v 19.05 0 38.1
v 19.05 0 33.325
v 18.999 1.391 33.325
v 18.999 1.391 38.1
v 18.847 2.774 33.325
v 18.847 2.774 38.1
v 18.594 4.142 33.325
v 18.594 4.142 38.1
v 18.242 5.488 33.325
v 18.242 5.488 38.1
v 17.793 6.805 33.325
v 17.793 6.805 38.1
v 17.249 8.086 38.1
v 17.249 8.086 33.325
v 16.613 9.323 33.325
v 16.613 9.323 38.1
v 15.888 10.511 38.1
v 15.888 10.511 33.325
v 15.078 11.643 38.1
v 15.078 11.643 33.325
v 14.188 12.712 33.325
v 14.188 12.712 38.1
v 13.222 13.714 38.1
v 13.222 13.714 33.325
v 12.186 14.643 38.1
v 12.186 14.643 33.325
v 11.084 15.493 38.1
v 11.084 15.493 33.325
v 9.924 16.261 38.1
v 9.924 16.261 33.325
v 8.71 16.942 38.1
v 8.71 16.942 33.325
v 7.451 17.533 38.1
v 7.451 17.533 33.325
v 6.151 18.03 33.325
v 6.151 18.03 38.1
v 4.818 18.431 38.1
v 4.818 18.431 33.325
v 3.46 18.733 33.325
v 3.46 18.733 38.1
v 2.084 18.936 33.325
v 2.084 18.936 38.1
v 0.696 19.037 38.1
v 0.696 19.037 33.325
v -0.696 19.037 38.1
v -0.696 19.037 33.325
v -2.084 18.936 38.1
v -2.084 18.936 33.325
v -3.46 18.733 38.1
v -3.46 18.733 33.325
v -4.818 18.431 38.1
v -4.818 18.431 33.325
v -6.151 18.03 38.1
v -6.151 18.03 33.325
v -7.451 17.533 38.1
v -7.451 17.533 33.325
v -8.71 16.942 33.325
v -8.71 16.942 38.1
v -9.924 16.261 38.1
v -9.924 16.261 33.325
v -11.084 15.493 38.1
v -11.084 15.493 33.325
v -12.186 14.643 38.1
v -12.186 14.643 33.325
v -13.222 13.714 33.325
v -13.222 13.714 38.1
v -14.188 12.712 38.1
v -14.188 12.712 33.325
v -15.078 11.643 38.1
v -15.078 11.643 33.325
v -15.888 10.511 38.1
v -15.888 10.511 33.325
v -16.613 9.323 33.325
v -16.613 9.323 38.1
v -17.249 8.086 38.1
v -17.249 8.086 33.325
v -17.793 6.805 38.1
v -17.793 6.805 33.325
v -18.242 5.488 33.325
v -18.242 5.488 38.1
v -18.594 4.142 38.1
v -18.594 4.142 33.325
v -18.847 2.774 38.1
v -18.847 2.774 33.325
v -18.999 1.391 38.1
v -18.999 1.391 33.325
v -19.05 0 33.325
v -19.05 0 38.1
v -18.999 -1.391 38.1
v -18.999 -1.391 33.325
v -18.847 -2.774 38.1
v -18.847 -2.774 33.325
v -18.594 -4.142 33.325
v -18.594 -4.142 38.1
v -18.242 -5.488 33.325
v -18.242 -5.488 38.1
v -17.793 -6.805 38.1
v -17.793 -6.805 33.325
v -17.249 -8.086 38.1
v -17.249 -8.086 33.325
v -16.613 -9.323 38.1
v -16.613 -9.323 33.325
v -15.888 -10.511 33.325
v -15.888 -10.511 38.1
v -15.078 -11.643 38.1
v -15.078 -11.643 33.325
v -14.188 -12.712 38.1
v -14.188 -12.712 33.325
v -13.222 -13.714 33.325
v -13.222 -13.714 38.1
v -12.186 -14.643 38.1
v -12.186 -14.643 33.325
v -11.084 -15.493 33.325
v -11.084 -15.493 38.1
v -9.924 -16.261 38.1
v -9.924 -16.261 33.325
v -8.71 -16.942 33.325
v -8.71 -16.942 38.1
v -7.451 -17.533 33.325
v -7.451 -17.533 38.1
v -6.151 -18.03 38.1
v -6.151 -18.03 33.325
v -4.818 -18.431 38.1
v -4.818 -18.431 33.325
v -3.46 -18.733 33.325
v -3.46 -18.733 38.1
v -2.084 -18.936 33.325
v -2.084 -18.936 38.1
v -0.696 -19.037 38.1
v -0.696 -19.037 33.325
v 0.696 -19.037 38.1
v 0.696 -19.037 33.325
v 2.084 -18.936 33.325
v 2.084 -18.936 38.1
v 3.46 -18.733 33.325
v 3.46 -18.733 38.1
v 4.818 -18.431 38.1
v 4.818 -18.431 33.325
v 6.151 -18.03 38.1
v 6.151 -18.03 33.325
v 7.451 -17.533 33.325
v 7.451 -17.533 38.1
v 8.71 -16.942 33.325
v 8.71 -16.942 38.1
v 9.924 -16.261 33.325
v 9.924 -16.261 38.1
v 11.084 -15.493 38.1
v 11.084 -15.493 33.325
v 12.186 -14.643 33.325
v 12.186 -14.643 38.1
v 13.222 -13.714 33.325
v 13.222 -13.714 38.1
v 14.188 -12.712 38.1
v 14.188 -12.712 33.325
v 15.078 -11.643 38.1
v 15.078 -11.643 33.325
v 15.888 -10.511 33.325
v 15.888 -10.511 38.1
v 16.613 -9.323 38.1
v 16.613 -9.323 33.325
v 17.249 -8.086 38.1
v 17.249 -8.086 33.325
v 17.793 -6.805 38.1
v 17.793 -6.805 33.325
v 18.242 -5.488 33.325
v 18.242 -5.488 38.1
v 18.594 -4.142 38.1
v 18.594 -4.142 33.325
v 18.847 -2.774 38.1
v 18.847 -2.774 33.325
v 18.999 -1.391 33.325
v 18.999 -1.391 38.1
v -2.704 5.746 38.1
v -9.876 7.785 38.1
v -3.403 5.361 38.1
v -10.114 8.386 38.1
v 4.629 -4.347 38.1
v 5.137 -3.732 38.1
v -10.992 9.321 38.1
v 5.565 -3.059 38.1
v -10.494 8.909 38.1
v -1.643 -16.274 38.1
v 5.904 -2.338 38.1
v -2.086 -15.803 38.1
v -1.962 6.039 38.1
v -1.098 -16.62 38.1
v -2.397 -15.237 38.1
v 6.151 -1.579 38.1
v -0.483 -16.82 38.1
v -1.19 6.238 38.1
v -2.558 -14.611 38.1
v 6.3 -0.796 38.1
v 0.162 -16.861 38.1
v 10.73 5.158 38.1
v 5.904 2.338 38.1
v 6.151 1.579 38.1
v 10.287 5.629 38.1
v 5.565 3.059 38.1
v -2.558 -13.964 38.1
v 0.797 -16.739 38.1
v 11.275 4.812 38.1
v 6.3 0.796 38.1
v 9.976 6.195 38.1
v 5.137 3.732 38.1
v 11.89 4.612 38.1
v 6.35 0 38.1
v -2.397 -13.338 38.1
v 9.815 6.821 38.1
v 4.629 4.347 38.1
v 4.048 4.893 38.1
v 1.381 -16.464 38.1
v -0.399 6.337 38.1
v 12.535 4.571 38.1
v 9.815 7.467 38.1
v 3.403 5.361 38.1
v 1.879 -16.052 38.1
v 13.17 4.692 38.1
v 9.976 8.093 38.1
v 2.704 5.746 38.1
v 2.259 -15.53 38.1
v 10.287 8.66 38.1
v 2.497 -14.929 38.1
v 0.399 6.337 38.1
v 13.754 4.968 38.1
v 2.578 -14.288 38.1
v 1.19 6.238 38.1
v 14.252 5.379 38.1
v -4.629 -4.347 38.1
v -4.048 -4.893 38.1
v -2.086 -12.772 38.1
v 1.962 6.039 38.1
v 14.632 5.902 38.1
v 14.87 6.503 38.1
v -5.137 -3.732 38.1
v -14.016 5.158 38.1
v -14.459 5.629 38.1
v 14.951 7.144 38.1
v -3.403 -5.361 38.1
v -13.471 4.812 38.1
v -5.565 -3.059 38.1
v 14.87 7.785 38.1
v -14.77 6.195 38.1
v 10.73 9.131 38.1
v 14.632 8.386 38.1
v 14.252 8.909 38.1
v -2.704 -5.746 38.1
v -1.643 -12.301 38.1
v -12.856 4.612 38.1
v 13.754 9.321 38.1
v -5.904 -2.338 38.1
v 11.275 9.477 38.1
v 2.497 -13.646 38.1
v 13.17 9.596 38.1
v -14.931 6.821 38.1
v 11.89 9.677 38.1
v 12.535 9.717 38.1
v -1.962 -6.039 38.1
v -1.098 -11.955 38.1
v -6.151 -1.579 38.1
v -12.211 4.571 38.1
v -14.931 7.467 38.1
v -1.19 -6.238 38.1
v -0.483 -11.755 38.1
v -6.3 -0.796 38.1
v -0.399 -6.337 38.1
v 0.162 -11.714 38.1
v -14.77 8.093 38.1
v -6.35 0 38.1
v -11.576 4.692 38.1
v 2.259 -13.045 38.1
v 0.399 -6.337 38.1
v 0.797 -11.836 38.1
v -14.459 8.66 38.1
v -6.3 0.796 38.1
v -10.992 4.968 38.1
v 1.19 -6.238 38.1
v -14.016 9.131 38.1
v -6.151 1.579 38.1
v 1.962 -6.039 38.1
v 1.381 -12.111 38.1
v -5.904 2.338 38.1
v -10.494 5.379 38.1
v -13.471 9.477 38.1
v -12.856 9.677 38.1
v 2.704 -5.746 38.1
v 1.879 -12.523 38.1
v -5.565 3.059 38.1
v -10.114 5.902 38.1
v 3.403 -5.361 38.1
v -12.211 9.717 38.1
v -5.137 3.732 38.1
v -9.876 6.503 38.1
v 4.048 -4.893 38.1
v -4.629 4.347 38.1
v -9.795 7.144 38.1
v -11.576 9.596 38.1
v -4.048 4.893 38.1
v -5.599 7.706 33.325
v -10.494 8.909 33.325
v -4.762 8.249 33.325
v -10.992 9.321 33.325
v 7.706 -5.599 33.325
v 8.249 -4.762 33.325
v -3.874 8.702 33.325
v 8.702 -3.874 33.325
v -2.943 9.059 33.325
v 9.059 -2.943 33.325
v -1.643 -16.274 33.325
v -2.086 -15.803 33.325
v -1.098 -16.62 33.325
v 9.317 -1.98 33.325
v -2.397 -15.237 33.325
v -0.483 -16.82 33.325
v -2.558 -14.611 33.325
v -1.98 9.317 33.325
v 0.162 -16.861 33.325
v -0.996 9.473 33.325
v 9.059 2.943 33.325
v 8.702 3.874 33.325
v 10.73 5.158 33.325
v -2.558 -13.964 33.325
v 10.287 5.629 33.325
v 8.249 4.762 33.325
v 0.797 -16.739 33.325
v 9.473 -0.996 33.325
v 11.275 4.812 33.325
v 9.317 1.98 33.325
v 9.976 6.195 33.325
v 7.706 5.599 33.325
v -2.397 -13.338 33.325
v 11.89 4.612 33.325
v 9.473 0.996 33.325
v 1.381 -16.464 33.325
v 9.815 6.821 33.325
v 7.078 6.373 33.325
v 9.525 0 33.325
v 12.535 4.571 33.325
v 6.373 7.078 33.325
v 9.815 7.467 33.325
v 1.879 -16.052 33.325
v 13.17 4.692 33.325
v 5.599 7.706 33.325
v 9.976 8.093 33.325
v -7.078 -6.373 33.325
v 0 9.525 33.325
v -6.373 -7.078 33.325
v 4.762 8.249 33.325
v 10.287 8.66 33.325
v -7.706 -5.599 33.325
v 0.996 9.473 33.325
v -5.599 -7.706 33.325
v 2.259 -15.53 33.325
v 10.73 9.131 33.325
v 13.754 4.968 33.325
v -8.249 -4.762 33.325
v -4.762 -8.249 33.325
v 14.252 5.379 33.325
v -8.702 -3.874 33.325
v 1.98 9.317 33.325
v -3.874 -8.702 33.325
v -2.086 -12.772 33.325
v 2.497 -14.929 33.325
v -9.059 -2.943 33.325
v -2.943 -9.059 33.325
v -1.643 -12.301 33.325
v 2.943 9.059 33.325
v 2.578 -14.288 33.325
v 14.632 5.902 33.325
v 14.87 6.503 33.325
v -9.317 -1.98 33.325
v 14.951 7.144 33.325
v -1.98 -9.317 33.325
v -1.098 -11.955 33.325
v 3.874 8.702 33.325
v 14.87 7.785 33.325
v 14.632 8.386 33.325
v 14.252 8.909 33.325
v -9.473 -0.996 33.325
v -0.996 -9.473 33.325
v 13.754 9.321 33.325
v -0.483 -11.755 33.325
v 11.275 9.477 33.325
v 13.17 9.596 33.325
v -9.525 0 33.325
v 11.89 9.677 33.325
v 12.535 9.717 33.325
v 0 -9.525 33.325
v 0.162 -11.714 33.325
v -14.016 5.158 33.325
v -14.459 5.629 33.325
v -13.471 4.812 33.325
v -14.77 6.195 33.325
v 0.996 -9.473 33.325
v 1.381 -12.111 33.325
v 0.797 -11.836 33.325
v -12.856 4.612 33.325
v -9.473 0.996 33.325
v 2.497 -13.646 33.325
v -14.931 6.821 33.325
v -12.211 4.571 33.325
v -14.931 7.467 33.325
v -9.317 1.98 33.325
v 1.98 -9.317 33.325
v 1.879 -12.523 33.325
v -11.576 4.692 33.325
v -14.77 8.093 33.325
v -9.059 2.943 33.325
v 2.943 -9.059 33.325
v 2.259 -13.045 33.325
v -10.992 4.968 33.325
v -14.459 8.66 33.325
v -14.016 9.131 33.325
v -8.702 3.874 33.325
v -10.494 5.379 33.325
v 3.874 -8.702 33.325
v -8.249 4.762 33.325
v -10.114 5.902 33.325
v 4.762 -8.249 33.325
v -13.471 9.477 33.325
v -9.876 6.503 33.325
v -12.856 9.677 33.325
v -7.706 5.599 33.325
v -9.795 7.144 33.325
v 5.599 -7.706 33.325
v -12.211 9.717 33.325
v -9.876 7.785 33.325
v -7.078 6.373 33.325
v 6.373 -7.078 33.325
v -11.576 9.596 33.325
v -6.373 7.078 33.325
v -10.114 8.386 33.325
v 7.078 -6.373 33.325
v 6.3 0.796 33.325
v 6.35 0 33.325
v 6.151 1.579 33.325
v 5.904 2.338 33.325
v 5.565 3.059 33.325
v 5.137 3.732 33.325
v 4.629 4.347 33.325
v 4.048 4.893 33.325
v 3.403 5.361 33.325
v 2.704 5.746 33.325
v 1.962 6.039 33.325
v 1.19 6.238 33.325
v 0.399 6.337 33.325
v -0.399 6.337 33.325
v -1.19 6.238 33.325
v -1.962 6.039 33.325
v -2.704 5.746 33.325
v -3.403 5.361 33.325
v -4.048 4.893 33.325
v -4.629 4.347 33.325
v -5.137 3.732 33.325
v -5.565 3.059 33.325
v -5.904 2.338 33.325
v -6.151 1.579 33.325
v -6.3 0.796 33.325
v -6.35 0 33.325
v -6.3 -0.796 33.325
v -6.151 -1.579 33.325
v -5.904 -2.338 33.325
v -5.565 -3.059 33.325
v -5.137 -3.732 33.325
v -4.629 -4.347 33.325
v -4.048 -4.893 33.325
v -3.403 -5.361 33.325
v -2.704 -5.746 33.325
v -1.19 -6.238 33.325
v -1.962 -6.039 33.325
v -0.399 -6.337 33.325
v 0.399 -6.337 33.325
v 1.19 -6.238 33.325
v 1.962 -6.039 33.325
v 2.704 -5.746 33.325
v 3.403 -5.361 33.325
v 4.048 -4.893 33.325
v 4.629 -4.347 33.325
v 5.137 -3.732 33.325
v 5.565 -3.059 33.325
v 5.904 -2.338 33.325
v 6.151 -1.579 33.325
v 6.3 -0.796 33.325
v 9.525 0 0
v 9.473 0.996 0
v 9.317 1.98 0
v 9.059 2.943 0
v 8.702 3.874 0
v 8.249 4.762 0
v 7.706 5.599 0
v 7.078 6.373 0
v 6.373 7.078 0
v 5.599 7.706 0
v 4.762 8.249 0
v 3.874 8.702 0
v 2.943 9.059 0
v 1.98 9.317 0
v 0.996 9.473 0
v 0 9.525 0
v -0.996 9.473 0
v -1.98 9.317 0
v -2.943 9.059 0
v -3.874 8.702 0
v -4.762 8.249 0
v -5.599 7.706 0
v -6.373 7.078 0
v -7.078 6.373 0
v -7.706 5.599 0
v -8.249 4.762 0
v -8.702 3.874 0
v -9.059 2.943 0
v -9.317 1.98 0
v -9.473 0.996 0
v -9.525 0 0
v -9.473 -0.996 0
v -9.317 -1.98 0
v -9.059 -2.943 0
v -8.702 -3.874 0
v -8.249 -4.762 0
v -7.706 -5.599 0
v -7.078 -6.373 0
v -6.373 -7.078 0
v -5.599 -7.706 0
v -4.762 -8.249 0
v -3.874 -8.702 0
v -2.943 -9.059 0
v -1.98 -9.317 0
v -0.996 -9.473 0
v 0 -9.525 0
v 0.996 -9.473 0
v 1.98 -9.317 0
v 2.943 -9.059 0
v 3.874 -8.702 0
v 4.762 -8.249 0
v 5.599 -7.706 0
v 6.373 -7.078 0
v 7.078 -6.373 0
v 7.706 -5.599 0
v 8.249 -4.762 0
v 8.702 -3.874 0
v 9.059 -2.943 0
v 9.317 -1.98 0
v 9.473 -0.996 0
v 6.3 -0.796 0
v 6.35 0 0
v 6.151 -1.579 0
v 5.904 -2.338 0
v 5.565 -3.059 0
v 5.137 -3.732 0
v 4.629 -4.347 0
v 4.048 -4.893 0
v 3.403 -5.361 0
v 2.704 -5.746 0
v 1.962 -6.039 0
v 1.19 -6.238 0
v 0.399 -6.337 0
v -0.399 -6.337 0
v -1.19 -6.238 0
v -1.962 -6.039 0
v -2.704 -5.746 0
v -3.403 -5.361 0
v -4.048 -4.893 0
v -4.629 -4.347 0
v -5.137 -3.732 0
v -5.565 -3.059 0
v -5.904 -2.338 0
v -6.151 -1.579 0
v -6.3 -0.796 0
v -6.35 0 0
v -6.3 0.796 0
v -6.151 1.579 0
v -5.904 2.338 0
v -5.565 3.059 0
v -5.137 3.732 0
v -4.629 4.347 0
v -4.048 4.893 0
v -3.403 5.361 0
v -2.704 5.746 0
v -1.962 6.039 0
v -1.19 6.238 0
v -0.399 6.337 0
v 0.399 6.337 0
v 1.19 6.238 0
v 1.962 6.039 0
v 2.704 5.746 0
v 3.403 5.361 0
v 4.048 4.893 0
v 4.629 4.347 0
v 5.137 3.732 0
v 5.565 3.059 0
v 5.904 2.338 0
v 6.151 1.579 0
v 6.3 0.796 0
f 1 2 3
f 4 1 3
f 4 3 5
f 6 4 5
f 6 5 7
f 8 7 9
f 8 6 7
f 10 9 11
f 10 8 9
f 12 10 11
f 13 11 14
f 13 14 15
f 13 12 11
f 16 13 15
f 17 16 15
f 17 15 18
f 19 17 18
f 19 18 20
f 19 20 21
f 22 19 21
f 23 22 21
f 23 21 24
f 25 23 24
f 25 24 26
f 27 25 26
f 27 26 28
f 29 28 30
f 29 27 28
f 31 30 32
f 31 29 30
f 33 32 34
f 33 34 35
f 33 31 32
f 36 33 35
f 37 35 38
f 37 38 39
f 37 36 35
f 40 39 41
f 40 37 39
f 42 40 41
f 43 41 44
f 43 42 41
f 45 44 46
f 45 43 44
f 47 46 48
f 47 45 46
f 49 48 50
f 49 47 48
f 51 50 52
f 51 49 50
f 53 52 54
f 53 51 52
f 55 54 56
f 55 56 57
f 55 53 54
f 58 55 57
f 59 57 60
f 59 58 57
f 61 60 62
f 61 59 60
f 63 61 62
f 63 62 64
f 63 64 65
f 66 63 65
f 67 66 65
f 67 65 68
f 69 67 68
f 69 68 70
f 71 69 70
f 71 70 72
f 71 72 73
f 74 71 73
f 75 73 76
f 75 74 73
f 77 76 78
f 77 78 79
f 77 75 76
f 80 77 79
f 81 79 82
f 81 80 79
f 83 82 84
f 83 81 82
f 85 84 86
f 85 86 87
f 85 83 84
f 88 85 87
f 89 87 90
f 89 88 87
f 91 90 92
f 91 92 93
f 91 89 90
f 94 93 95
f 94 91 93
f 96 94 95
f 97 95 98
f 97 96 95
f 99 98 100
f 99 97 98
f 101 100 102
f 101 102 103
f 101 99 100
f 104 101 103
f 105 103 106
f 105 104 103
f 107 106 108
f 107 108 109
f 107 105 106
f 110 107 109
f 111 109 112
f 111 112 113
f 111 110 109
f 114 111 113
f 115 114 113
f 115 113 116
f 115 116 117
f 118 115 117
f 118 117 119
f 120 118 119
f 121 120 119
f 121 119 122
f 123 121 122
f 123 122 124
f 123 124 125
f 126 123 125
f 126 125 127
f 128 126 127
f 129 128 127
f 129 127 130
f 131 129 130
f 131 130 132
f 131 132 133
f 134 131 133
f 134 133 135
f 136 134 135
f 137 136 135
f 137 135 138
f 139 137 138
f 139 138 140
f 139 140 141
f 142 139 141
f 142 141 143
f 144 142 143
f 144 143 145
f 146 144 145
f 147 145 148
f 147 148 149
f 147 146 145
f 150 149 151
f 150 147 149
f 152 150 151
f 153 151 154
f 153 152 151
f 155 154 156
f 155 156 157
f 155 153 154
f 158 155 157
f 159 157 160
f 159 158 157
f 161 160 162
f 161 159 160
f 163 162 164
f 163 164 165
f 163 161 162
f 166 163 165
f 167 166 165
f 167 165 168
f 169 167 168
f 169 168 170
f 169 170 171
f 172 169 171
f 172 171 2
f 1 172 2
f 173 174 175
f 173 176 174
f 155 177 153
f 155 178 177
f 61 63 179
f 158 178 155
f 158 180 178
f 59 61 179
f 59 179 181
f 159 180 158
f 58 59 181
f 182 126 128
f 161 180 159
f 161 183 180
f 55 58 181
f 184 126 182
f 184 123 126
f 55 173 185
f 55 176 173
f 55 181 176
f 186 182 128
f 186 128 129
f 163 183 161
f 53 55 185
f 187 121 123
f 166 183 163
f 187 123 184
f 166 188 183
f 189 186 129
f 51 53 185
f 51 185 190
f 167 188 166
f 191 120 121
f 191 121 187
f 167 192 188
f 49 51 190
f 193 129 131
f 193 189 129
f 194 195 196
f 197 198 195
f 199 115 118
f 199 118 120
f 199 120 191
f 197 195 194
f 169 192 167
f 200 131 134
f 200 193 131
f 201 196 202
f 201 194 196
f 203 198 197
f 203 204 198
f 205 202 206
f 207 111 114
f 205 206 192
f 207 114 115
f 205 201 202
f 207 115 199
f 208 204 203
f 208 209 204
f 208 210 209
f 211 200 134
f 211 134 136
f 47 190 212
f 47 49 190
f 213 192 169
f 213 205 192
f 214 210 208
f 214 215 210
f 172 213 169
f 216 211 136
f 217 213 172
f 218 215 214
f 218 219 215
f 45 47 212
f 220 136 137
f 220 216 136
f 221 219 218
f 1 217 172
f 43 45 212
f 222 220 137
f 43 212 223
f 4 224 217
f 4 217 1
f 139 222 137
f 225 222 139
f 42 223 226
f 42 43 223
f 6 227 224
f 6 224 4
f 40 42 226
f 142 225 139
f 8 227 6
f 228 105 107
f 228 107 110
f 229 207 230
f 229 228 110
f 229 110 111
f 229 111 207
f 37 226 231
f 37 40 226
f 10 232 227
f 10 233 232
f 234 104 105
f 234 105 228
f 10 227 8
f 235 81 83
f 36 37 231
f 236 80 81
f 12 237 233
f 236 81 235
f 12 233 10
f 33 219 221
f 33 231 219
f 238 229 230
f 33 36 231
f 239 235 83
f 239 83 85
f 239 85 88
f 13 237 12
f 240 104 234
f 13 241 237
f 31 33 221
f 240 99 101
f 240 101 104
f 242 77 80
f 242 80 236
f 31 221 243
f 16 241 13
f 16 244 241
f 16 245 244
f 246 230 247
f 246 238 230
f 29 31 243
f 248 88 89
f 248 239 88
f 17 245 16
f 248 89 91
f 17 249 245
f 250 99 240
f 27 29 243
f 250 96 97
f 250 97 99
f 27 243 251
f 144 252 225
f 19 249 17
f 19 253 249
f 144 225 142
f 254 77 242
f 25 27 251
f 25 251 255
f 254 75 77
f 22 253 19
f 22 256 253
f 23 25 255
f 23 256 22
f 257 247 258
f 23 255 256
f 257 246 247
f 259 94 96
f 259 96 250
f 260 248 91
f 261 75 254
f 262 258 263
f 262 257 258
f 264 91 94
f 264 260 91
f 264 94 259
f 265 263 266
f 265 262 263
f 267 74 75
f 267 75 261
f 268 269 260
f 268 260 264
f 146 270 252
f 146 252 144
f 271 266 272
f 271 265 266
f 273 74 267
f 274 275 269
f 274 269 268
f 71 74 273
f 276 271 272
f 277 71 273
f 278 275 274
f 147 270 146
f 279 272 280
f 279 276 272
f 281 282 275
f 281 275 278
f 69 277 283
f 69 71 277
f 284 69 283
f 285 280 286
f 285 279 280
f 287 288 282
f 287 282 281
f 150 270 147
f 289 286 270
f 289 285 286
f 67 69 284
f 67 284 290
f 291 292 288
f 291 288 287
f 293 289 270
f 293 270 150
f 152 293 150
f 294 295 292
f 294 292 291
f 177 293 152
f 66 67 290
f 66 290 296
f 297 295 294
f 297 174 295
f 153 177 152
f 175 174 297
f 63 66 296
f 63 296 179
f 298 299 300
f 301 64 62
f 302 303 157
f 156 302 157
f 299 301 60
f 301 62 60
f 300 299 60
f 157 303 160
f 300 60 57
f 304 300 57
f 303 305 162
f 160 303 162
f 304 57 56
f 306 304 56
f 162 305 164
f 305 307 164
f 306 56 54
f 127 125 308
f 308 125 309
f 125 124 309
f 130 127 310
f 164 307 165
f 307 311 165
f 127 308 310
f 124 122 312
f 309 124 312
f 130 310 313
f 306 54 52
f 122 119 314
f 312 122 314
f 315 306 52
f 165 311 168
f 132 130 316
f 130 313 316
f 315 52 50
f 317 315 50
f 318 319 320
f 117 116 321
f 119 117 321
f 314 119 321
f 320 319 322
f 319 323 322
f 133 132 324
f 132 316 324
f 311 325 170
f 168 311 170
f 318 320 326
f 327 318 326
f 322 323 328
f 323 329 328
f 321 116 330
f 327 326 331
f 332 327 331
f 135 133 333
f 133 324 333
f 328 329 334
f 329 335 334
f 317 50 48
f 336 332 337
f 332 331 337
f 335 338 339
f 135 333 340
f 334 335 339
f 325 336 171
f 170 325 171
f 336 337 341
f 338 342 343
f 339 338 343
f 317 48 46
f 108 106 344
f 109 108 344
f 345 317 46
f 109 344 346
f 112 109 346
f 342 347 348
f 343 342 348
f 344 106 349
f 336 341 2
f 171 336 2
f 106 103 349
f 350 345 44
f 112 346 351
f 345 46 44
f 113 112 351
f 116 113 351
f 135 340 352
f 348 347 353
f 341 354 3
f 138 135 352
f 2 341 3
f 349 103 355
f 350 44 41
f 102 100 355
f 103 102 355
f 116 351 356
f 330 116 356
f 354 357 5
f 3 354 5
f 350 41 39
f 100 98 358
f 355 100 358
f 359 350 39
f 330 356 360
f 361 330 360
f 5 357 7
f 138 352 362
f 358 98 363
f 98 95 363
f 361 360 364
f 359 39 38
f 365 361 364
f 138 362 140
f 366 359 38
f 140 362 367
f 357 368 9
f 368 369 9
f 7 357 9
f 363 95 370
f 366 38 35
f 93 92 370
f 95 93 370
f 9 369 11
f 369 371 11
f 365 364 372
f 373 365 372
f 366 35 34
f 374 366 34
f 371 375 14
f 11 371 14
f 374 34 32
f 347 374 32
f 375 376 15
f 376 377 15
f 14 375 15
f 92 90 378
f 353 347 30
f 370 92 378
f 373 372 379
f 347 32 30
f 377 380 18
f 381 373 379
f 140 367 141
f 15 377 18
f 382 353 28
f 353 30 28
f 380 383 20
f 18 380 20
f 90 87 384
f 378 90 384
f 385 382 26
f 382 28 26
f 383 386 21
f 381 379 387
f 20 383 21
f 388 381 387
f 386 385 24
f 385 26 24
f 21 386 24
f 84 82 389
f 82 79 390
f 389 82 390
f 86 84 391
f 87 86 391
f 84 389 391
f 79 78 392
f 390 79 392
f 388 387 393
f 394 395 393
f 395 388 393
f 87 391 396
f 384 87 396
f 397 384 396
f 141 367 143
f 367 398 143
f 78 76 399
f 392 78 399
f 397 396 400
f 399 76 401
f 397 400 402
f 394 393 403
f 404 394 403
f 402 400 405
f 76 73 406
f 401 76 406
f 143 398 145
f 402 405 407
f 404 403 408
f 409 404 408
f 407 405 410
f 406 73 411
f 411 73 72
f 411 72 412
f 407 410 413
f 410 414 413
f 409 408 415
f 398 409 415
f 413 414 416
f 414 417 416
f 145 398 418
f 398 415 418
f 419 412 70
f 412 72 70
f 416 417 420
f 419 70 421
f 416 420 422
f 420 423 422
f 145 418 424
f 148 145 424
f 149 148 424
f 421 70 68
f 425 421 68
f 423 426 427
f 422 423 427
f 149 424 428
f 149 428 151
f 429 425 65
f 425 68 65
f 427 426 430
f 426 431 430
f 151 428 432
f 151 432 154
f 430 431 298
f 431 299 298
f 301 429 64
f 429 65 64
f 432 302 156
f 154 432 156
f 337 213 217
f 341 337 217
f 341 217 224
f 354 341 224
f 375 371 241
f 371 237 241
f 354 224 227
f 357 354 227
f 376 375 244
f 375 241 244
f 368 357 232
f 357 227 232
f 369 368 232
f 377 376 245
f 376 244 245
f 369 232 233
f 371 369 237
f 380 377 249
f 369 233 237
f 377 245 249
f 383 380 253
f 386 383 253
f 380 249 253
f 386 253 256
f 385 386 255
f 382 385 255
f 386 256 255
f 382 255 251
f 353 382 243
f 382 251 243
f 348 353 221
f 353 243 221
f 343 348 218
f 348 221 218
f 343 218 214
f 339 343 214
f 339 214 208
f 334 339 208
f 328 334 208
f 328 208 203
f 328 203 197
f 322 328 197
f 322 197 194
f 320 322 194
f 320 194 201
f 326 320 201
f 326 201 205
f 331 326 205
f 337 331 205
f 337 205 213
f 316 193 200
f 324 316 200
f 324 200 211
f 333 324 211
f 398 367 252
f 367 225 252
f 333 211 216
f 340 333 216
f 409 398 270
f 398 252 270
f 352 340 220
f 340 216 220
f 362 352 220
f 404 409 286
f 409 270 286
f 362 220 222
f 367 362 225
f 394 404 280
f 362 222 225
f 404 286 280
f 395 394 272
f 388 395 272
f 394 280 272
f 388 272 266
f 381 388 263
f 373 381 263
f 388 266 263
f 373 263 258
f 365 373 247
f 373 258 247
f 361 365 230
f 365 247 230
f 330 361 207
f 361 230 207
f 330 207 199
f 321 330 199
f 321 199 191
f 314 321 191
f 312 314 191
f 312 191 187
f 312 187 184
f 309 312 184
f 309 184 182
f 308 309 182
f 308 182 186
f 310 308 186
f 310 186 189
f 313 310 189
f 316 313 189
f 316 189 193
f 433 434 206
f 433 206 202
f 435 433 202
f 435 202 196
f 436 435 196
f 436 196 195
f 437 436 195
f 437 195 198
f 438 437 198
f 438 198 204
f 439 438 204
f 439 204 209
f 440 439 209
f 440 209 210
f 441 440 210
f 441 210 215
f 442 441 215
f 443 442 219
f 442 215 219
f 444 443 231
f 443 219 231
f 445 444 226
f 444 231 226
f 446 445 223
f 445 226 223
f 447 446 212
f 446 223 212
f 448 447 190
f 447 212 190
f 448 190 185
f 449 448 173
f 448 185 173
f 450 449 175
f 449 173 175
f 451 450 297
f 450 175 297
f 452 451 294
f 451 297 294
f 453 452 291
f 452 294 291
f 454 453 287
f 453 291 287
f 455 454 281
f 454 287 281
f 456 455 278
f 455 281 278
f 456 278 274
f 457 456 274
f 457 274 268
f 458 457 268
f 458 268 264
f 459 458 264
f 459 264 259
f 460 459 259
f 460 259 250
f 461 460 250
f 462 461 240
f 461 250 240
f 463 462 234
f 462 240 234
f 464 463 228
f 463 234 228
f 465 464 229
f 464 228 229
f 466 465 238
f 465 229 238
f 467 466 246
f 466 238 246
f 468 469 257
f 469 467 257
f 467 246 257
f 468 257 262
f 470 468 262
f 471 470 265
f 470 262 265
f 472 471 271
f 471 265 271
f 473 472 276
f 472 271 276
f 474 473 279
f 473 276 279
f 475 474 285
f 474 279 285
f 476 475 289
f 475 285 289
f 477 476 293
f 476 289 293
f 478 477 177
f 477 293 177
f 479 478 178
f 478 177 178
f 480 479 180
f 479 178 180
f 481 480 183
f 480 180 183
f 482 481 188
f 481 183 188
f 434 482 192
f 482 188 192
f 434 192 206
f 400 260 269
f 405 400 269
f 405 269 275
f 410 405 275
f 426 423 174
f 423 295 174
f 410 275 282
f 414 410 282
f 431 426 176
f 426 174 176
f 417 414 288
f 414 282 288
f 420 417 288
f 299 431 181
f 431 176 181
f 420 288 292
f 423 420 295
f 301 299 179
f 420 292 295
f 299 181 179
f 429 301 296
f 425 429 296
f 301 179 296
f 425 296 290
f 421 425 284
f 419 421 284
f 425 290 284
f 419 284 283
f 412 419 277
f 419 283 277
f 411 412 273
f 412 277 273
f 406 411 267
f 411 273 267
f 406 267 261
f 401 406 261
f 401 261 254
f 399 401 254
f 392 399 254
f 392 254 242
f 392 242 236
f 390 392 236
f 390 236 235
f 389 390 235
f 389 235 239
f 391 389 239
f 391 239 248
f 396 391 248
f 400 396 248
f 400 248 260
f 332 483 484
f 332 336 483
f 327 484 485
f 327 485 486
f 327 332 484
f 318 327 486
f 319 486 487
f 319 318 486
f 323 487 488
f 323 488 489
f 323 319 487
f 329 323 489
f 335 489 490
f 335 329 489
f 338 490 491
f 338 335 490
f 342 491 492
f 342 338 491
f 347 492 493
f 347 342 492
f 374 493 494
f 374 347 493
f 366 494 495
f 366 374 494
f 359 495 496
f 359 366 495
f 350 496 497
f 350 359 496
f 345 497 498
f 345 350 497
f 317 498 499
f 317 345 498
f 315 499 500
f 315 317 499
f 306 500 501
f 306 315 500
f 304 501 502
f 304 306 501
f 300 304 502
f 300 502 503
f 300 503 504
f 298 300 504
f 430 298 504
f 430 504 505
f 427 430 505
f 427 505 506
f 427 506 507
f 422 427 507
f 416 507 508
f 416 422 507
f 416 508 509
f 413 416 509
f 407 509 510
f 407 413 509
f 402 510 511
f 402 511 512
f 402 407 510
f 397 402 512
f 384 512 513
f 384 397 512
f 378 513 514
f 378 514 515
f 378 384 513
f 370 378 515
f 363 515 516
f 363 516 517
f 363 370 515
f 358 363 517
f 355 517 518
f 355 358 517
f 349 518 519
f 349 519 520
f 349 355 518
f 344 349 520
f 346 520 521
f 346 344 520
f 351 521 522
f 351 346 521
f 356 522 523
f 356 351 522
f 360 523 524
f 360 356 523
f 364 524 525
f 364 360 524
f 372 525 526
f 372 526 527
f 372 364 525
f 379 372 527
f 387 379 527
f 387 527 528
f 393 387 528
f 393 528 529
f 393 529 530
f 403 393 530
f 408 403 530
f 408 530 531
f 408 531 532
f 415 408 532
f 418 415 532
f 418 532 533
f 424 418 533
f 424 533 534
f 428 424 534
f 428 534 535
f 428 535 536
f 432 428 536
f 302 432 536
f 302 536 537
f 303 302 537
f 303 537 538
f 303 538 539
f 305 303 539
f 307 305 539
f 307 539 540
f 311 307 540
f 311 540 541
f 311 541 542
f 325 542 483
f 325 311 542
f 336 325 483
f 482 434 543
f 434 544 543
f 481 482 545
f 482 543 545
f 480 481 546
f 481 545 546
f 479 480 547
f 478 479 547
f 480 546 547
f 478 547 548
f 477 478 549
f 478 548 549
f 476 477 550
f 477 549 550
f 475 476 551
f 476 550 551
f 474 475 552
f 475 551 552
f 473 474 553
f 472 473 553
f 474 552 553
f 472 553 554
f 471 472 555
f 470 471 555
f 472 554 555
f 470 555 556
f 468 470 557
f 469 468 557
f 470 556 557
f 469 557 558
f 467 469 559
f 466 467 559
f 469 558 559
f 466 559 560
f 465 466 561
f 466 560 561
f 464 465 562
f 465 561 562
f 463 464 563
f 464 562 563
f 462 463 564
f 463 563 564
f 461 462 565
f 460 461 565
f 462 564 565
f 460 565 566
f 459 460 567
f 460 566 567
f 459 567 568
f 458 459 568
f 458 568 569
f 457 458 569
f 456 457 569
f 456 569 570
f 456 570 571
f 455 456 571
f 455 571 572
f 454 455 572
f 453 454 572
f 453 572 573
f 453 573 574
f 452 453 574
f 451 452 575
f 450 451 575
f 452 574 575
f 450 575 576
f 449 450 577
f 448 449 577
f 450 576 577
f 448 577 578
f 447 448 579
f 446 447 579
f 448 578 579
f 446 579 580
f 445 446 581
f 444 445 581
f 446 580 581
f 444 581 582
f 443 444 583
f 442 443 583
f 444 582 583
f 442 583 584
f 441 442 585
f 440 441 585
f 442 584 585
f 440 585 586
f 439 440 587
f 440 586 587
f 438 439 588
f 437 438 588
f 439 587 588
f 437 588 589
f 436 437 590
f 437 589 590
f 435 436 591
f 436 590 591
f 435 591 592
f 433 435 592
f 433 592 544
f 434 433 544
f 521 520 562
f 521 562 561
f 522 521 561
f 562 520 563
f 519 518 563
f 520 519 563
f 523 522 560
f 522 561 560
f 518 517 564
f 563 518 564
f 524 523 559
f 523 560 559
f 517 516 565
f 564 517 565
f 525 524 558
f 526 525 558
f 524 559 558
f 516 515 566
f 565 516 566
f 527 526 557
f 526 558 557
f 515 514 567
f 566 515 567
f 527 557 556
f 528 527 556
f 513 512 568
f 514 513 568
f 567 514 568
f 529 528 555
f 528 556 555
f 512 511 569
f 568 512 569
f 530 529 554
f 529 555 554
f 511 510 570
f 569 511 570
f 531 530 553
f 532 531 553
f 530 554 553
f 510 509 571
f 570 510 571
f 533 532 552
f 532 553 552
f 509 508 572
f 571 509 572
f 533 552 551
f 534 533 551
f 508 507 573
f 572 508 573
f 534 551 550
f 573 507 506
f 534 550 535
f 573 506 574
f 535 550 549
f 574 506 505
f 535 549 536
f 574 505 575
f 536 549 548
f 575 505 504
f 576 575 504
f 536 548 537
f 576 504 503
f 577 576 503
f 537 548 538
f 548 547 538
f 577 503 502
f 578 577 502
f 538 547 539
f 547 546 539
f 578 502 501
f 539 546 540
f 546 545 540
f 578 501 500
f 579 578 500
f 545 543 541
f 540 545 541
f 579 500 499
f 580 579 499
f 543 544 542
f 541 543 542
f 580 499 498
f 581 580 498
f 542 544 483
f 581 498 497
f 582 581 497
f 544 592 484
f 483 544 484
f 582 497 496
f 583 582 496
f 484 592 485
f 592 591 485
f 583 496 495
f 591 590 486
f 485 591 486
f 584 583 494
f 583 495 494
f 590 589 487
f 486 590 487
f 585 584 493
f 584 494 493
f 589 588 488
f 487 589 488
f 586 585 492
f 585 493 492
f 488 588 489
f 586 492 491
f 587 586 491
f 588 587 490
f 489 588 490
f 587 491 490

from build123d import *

# Parameters (mm, degrees)
CYLINDER_R        = 9.525
CYLINDER_DEPTH    = 33.3248
SKETCH001_R       = 6.35
POCKET001_DEPTH   = 33.3258
CYLINDER001_R     = 19.05
CYLINDER001_DEPTH = 4.7752
SKETCH_R          = 2.5781
SKETCH_R_2        = 6.35
POCKET_DEPTH      = 4.7762


with BuildPart() as pocket001:
    # Cylinder → Cylinder (new body)
    with BuildSketch(Plane.XY):
        Circle(CYLINDER_R)
    extrude(amount=CYLINDER_DEPTH)

    # Sketch001 → Pocket001 (cut, through all)
    with BuildSketch(Plane(origin=(0, 0, 0), x_dir=(1, 0, 0), z_dir=(0, 0, -1))):
        Circle(SKETCH001_R)
    extrude(amount=-POCKET001_DEPTH, mode=Mode.SUBTRACT)


with BuildPart() as part:
    # Cylinder001 → Cylinder001 (new body)
    with BuildSketch(Plane.XY.offset(33.3248)):
        Circle(CYLINDER001_R)
    extrude(amount=CYLINDER001_DEPTH)

    # Sketch → Pocket (cut, through all)
    with BuildSketch(Plane.XY.offset(38.1)):
        with Locations((-12.373014, 7.144311)):
            Circle(SKETCH_R)
        with Locations((0, -14.2875)):
            Circle(SKETCH_R)
        with Locations((12.373014, 7.144311)):
            Circle(SKETCH_R)
        Circle(SKETCH_R_2)
    extrude(amount=-POCKET_DEPTH, mode=Mode.SUBTRACT)

    # Fusion: union Pocket001
    add(pocket001.part)


solid = part.part
